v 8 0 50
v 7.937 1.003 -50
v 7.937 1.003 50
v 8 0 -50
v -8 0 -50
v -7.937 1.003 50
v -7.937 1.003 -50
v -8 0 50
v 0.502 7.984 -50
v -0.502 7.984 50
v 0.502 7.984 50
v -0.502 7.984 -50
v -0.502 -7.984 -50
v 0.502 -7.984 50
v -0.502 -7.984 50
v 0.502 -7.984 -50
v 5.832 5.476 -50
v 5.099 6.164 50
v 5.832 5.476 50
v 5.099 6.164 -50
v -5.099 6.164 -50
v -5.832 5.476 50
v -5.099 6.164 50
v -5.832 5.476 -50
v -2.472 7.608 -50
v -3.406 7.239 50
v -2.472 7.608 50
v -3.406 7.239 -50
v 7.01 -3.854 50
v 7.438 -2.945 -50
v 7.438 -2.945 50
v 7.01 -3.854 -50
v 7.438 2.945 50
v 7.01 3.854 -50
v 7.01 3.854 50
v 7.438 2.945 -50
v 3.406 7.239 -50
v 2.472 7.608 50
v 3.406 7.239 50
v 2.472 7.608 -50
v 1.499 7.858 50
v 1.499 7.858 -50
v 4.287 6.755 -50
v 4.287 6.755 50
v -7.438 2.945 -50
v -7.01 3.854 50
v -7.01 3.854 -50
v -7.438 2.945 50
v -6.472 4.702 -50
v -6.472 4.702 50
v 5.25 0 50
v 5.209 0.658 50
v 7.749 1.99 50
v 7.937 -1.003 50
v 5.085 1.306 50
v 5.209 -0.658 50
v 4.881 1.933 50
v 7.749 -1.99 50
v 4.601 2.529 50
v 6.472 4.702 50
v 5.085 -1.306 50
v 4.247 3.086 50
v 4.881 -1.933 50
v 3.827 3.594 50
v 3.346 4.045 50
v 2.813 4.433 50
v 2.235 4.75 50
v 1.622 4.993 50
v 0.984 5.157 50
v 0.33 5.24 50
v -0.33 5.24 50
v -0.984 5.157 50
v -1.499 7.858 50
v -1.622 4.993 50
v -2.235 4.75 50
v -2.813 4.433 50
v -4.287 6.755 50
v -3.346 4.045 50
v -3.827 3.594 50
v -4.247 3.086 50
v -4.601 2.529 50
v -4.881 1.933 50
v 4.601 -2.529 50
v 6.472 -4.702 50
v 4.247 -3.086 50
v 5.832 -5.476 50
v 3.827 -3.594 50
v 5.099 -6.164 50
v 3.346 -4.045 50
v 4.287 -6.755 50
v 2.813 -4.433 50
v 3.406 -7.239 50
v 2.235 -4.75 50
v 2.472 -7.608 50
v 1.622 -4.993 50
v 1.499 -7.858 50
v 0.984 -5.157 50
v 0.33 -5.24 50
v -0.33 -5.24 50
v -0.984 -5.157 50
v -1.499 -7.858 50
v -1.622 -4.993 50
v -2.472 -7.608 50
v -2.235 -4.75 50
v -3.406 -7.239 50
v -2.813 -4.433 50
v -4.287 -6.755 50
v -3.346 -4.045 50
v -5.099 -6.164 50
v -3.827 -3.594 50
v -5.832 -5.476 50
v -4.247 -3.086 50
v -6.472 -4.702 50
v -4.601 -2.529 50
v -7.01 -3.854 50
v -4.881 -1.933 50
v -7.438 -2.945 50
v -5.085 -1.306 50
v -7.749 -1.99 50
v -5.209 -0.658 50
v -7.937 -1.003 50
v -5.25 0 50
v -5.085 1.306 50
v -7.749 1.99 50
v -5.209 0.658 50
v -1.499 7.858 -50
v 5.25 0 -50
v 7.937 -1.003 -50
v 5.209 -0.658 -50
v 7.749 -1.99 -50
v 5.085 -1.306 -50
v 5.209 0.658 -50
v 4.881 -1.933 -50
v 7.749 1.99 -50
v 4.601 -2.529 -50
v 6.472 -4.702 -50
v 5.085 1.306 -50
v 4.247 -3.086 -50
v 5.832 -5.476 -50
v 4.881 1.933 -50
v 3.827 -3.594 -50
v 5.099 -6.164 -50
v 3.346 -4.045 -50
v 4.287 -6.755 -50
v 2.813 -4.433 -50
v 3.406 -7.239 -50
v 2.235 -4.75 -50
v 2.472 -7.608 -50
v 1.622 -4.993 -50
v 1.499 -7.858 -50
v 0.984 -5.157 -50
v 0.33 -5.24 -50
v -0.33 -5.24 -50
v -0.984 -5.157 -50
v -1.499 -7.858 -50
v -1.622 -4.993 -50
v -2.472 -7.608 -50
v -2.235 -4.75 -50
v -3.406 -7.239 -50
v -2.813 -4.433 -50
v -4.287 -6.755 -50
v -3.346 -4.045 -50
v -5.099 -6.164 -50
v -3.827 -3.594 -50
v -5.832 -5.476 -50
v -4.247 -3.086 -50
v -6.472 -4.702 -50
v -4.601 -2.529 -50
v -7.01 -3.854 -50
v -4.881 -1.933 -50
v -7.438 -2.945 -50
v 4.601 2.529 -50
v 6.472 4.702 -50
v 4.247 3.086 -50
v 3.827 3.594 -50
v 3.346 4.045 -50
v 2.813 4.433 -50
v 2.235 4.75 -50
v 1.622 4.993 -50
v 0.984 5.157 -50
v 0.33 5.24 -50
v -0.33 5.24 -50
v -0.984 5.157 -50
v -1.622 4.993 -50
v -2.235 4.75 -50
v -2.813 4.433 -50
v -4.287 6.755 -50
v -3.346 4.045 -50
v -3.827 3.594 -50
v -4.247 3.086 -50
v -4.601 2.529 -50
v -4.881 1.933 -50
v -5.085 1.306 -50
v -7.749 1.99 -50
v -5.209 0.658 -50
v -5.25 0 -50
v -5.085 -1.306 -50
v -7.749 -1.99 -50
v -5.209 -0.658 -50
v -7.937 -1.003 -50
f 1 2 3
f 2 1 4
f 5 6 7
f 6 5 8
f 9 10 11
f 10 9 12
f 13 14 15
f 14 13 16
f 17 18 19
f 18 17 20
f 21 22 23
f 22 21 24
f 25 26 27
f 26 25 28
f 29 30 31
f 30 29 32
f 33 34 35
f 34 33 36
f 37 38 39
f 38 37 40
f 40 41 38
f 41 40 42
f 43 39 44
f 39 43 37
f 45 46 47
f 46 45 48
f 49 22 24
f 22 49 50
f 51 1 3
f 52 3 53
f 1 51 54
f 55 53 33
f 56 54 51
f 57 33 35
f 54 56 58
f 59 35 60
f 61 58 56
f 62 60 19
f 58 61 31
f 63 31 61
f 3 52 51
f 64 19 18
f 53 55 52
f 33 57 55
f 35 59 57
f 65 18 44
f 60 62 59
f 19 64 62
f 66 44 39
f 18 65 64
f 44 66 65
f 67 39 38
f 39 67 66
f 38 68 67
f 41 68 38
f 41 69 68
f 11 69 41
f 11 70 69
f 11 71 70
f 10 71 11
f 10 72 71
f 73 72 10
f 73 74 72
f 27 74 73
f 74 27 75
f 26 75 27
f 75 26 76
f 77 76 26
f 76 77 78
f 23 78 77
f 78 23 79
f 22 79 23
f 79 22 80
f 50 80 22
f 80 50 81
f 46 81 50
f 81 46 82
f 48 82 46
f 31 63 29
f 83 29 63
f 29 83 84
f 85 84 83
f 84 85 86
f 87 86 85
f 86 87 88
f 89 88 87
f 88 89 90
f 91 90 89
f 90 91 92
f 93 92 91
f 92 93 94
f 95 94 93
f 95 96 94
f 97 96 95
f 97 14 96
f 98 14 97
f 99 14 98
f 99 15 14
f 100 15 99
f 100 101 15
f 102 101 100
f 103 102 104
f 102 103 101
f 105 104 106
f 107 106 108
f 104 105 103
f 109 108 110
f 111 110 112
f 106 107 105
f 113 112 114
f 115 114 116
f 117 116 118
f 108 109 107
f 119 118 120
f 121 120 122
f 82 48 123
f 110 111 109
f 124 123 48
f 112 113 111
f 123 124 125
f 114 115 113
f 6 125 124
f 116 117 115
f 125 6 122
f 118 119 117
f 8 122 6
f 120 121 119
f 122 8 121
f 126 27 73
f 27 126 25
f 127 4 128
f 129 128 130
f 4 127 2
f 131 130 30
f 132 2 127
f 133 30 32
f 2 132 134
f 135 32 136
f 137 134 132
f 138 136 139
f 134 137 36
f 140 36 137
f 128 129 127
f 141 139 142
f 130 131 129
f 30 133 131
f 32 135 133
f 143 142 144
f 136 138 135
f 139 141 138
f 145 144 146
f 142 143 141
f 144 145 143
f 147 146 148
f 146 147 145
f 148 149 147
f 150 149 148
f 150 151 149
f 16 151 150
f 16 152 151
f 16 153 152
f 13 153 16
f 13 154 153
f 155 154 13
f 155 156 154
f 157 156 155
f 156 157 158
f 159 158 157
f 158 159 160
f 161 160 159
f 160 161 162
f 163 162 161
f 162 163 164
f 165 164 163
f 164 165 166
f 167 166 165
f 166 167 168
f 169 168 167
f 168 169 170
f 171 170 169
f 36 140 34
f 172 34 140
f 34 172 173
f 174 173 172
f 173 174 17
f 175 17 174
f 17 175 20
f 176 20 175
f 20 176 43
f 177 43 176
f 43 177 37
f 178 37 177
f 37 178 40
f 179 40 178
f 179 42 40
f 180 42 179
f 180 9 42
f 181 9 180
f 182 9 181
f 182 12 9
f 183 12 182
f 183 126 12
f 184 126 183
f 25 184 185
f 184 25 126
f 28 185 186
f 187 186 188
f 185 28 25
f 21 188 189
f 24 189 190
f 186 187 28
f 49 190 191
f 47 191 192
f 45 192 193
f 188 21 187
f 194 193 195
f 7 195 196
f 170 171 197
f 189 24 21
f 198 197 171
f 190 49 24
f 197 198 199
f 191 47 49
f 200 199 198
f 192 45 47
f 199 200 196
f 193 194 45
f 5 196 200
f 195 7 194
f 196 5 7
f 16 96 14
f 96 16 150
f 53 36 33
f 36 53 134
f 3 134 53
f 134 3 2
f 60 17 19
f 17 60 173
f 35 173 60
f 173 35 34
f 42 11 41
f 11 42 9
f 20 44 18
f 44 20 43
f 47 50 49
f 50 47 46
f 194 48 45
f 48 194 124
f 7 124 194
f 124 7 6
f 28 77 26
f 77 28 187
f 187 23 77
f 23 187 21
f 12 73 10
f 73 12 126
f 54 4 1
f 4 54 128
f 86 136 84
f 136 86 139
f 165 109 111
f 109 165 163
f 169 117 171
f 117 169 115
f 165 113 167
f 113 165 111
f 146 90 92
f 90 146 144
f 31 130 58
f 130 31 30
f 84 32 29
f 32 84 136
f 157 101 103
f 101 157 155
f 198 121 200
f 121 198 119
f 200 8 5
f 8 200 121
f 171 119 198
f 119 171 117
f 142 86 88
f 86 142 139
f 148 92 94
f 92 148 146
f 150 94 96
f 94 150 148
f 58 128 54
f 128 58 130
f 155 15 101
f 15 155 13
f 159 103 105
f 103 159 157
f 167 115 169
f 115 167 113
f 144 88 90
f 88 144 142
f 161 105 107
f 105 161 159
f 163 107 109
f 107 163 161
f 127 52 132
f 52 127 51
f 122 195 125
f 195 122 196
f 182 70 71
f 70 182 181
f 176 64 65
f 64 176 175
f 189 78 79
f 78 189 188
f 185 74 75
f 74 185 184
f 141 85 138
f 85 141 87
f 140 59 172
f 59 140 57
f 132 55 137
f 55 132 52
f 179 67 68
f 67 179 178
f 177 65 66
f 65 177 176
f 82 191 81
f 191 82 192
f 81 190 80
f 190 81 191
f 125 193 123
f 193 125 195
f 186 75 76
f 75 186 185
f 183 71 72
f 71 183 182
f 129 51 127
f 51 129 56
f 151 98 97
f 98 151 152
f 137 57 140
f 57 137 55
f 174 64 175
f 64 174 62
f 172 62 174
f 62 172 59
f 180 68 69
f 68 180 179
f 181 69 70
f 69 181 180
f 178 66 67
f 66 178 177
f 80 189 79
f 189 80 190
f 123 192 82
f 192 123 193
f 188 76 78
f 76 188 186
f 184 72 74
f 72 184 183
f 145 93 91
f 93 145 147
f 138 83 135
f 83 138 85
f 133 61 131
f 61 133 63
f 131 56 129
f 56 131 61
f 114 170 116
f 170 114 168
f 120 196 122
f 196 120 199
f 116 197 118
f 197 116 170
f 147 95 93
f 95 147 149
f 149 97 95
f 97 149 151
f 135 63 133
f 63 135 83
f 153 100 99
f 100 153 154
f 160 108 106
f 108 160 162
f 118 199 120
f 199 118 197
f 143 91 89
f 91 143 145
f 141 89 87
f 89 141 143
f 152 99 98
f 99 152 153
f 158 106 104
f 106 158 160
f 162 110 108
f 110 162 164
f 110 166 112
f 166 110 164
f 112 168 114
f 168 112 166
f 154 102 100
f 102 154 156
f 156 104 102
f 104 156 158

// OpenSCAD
$fn = 50;


difference() {
	union() {
		translate(v = [0, 0, -50.0000000000]) {
			cylinder(h = 100, r = 8.0000000000);
		}
	}
	union() {
		translate(v = [0, 0, -100.0000000000]) {
			cylinder(h = 200, r = 5.2500000000);
		}
	}
}
